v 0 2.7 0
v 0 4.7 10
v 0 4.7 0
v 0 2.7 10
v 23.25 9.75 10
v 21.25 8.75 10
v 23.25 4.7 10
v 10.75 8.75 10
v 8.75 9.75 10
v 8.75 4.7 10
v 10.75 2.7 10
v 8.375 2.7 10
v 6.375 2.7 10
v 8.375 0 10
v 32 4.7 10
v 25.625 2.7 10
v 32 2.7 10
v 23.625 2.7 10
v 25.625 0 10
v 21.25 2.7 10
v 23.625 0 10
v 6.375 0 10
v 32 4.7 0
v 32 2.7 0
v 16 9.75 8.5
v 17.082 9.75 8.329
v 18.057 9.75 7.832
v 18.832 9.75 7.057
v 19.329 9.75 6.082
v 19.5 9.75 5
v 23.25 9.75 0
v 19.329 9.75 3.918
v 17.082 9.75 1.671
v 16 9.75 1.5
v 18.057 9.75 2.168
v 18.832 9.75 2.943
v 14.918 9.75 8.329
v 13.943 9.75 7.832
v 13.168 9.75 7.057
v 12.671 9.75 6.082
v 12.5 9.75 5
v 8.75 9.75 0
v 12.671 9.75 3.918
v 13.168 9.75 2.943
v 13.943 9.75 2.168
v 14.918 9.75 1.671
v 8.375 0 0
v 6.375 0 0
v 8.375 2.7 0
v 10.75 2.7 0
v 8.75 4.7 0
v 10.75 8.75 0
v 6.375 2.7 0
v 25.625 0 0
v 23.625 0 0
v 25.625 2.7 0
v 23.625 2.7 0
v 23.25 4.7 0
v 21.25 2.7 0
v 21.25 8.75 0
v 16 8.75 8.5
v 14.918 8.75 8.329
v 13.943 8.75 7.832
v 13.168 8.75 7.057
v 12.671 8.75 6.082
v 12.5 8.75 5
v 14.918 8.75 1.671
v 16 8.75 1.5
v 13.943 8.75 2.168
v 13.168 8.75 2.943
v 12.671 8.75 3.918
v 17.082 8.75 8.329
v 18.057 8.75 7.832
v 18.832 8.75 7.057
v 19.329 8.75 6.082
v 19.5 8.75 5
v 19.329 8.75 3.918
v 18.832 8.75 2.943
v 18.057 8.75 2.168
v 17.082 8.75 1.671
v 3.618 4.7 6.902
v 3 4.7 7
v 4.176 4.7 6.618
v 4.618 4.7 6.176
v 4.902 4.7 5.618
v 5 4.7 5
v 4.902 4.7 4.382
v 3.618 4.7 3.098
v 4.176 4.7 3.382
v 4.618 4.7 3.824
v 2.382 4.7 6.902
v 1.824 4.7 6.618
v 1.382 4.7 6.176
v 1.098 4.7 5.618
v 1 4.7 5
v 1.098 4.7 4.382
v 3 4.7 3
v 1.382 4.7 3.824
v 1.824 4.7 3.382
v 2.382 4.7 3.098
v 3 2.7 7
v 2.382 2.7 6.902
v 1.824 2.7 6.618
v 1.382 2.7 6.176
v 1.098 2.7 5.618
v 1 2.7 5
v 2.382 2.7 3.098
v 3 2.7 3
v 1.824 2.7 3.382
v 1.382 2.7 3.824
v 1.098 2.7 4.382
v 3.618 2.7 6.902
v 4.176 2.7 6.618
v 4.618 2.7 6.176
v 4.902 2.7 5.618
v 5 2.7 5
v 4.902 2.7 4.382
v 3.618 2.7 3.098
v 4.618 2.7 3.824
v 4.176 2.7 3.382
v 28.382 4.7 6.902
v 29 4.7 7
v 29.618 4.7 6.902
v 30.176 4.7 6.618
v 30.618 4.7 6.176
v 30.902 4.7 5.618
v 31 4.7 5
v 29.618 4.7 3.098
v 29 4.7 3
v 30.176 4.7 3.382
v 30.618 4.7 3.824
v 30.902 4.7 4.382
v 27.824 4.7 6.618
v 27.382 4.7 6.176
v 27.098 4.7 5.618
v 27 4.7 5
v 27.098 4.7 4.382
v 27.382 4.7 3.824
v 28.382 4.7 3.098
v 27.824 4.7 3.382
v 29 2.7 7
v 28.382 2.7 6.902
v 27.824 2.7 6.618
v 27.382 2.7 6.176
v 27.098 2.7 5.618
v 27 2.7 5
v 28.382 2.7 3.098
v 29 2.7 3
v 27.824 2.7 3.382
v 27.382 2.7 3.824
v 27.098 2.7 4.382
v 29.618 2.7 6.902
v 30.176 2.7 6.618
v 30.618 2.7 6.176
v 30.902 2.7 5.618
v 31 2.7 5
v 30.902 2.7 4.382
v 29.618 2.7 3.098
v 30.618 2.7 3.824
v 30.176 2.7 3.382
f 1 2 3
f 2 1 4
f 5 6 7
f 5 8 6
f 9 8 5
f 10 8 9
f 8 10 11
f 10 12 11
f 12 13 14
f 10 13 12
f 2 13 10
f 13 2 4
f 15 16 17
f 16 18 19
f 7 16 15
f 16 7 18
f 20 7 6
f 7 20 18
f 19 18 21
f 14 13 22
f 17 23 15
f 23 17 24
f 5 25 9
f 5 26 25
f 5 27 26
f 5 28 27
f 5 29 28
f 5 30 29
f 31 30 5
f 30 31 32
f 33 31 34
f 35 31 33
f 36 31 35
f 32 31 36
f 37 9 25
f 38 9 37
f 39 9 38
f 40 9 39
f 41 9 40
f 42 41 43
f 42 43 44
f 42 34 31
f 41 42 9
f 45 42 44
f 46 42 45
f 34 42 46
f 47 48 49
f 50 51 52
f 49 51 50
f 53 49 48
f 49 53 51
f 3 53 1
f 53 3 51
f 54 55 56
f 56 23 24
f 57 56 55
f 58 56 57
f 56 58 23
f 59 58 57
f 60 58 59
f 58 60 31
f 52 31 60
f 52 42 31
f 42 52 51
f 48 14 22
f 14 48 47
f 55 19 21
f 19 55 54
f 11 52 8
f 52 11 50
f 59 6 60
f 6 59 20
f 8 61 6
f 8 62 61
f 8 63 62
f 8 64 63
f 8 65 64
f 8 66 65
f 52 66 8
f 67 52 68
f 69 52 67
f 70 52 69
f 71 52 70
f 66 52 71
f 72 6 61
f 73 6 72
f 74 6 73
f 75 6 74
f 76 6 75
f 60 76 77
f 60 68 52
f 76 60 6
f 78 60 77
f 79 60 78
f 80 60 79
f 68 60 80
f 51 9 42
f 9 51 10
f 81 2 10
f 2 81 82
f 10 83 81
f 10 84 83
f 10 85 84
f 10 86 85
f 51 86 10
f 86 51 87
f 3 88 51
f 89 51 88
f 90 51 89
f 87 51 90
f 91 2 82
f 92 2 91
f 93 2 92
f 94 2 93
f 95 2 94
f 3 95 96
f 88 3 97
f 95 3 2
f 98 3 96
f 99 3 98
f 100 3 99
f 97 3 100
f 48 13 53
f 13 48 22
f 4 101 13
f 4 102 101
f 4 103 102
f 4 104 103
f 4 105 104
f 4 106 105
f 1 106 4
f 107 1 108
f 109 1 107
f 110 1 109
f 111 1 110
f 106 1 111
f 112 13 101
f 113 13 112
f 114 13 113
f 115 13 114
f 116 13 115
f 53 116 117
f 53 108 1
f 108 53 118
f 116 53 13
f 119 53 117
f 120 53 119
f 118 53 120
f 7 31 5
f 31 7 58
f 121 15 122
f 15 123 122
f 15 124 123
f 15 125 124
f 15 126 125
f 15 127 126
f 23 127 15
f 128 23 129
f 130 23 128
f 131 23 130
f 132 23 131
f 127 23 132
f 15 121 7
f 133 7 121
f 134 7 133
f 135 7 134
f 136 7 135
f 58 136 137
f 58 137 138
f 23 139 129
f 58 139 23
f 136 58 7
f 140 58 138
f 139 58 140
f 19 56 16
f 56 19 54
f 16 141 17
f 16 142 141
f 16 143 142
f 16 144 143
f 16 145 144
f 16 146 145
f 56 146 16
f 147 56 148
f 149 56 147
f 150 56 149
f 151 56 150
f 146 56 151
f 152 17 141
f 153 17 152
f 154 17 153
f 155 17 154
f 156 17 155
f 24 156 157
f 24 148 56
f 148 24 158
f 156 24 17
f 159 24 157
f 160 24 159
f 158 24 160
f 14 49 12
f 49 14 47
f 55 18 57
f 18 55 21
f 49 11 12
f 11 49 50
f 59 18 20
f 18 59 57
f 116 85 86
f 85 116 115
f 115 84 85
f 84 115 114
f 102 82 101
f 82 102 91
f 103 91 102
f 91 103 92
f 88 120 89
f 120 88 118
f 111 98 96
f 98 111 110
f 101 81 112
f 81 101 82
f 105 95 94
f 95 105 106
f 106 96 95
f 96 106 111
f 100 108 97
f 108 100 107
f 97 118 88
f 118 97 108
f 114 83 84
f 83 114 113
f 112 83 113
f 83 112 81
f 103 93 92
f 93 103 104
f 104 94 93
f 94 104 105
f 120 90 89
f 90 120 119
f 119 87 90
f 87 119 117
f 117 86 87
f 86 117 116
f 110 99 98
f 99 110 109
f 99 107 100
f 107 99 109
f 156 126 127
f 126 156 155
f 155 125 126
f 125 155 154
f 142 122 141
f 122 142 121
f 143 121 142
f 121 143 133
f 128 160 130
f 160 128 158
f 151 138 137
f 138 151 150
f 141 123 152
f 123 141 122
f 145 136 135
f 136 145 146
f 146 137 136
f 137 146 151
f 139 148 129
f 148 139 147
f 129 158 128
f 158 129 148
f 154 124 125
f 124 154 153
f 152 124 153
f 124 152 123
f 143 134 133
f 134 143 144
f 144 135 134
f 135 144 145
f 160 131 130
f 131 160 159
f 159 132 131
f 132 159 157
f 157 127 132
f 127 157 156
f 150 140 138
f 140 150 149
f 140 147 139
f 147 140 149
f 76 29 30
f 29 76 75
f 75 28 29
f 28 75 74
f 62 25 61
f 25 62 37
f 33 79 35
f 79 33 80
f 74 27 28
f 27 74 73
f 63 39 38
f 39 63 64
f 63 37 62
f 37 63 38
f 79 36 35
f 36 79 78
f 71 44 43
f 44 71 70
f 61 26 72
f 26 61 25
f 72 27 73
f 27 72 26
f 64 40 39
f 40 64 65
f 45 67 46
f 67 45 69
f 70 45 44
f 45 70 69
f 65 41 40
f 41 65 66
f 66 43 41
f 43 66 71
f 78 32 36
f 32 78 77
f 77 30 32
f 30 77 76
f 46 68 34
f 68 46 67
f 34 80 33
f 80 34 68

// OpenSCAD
// file: params.scad
module roundedRect(size, radius)
    {
    x = size[0];
    y = size[1];
    z = size[2];

    linear_extrude(height=z)
    hull()
    {
        // place 4 circles in the corners, with the given radius
        translate([radius, radius, 0])
        circle(r=radius);

        translate([x - radius, radius, 0])
        circle(r=radius);

        translate([radius, y - radius, 0])
        circle(r=radius);

        translate([x - radius, y - radius, 0])
        circle(r=radius);
    }
}

module roundedPoly(size, radius)
{
	x = size[0];
	y = size[1];
	z = size[2];

	hull()
	{
		// place 4 circles in the bottom corners, with the given radius
		translate([radius, radius, radius])
		sphere(r=radius);
	
		translate([x - radius, radius, radius])
		sphere(r=radius);
	
		translate([radius, y - radius, radius])
		sphere(r=radius);
	
		translate([x - radius, y - radius, radius])
		sphere(r=radius);
        
        // place 4 circles in the top corners, with the given radius
		translate([radius, radius, z - radius])
		sphere(r=radius);
	
		translate([x - radius, radius, z - radius])
		sphere(r=radius);
	
		translate([radius, y - radius, z - radius])
		sphere(r=radius);
	
		translate([x - radius, y - radius, z - radius])
		sphere(r=radius);
	}
}

module standoff(radius, height, inner_radius, depth=10) {
    difference() {
        cylinder(h=height, r=radius, $fn=40);
        translate([0, 0, height-20]) {
            cylinder(h=20.1, r=inner_radius, $fn=40);
        }
    }
}
    

left_margin = 10;
right_margin = 40;
top_margin = 25;
bottom_margin = 12;
screen_width = 118.1;
screen_height = 70.9;
height = 2;

total_width = left_margin+right_margin+screen_width;
total_height = top_margin+bottom_margin+screen_height;

ribbon_cable_width=13;

wall_thickness = 2;
depth = 45;
standoff_od = 4;

camera_offset_x = 100;
camera_offset_y = 12;
camera_standoff_height = 4.7;

sensor_offset_x = 135;
sensor_offset_y = 15;
// main file
include <params.scad>

camera_standoff_height = 4.7-2;

bracket_width = 10;
bracket_length = 32;

// 8.5 mm above the base
standover_height = 8.75;

cutout_length = 10.5;

wall_thickness = 2;
top_wall_thickness=1;
peg_distance = 15.25;

bracket_height = standover_height + top_wall_thickness;

difference() {
    cube([bracket_length, bracket_height, bracket_width]);
    
    translate([(bracket_length-cutout_length)/2, -0.1, -0.1]) {
        cube([cutout_length, standover_height+0.1, bracket_width+0.2]);
    }
    
    translate([-0.1, wall_thickness + camera_standoff_height, -0.1]) {
        cube([(bracket_length - cutout_length)/2 - wall_thickness + 0.1, bracket_height, bracket_width+0.2]);
    }
    
    translate([-0.1, -0.1, -0.1]) {
        cube([(bracket_length - peg_distance)/2 - wall_thickness + 0.1, camera_standoff_height + 0.1, bracket_width+0.2]);
    }
        
    translate([(bracket_length - cutout_length)/2 + cutout_length + wall_thickness, wall_thickness + camera_standoff_height, -0.1]) {
        cube([(bracket_length - cutout_length)/2 - wall_thickness + 0.1, bracket_height, bracket_width+0.2]);
    }
    
    translate([(bracket_length - peg_distance)/2 + peg_distance + wall_thickness, -0.1, -0.1]) {
        cube([(bracket_length - cutout_length)/2 - wall_thickness, camera_standoff_height+0.1, bracket_width+0.2]);
    }
   
    translate([(bracket_length - peg_distance)/2, -0.1, -0.1]) {
        cube([peg_distance, camera_standoff_height+0.1, bracket_width+0.2]);
    }
    
    translate([3, 10, bracket_width/2]) {
        rotate([90, 0, 0]) {
            cylinder(r=2, h=10, $fn=20);
        }
    }
    
    translate([bracket_length-3, 10, bracket_width/2]) {
        rotate([90, 0, 0]) {
            cylinder(r=2, h=10, $fn=20);
        }
    }
    
    translate([bracket_length/2, 10, bracket_width/2]) {
        rotate([90, 0, 0]) {
            cylinder(r=3.5, h=10, $fn=20);
        }
    }
    
    /*translate([bracket_length/2 - cutout_length/2, -0.1, -0.1]) {
        cube([cutout_length, bracket_height+0.2, bracket_width/2+0.1-1]);
    }
    
    translate([bracket_length/2 - cutout_length/2, -0.1, bracket_width/2+1]) {
        cube([cutout_length, bracket_height+0.2, bracket_width/2+0.1-1]);
    }*/
}

    
